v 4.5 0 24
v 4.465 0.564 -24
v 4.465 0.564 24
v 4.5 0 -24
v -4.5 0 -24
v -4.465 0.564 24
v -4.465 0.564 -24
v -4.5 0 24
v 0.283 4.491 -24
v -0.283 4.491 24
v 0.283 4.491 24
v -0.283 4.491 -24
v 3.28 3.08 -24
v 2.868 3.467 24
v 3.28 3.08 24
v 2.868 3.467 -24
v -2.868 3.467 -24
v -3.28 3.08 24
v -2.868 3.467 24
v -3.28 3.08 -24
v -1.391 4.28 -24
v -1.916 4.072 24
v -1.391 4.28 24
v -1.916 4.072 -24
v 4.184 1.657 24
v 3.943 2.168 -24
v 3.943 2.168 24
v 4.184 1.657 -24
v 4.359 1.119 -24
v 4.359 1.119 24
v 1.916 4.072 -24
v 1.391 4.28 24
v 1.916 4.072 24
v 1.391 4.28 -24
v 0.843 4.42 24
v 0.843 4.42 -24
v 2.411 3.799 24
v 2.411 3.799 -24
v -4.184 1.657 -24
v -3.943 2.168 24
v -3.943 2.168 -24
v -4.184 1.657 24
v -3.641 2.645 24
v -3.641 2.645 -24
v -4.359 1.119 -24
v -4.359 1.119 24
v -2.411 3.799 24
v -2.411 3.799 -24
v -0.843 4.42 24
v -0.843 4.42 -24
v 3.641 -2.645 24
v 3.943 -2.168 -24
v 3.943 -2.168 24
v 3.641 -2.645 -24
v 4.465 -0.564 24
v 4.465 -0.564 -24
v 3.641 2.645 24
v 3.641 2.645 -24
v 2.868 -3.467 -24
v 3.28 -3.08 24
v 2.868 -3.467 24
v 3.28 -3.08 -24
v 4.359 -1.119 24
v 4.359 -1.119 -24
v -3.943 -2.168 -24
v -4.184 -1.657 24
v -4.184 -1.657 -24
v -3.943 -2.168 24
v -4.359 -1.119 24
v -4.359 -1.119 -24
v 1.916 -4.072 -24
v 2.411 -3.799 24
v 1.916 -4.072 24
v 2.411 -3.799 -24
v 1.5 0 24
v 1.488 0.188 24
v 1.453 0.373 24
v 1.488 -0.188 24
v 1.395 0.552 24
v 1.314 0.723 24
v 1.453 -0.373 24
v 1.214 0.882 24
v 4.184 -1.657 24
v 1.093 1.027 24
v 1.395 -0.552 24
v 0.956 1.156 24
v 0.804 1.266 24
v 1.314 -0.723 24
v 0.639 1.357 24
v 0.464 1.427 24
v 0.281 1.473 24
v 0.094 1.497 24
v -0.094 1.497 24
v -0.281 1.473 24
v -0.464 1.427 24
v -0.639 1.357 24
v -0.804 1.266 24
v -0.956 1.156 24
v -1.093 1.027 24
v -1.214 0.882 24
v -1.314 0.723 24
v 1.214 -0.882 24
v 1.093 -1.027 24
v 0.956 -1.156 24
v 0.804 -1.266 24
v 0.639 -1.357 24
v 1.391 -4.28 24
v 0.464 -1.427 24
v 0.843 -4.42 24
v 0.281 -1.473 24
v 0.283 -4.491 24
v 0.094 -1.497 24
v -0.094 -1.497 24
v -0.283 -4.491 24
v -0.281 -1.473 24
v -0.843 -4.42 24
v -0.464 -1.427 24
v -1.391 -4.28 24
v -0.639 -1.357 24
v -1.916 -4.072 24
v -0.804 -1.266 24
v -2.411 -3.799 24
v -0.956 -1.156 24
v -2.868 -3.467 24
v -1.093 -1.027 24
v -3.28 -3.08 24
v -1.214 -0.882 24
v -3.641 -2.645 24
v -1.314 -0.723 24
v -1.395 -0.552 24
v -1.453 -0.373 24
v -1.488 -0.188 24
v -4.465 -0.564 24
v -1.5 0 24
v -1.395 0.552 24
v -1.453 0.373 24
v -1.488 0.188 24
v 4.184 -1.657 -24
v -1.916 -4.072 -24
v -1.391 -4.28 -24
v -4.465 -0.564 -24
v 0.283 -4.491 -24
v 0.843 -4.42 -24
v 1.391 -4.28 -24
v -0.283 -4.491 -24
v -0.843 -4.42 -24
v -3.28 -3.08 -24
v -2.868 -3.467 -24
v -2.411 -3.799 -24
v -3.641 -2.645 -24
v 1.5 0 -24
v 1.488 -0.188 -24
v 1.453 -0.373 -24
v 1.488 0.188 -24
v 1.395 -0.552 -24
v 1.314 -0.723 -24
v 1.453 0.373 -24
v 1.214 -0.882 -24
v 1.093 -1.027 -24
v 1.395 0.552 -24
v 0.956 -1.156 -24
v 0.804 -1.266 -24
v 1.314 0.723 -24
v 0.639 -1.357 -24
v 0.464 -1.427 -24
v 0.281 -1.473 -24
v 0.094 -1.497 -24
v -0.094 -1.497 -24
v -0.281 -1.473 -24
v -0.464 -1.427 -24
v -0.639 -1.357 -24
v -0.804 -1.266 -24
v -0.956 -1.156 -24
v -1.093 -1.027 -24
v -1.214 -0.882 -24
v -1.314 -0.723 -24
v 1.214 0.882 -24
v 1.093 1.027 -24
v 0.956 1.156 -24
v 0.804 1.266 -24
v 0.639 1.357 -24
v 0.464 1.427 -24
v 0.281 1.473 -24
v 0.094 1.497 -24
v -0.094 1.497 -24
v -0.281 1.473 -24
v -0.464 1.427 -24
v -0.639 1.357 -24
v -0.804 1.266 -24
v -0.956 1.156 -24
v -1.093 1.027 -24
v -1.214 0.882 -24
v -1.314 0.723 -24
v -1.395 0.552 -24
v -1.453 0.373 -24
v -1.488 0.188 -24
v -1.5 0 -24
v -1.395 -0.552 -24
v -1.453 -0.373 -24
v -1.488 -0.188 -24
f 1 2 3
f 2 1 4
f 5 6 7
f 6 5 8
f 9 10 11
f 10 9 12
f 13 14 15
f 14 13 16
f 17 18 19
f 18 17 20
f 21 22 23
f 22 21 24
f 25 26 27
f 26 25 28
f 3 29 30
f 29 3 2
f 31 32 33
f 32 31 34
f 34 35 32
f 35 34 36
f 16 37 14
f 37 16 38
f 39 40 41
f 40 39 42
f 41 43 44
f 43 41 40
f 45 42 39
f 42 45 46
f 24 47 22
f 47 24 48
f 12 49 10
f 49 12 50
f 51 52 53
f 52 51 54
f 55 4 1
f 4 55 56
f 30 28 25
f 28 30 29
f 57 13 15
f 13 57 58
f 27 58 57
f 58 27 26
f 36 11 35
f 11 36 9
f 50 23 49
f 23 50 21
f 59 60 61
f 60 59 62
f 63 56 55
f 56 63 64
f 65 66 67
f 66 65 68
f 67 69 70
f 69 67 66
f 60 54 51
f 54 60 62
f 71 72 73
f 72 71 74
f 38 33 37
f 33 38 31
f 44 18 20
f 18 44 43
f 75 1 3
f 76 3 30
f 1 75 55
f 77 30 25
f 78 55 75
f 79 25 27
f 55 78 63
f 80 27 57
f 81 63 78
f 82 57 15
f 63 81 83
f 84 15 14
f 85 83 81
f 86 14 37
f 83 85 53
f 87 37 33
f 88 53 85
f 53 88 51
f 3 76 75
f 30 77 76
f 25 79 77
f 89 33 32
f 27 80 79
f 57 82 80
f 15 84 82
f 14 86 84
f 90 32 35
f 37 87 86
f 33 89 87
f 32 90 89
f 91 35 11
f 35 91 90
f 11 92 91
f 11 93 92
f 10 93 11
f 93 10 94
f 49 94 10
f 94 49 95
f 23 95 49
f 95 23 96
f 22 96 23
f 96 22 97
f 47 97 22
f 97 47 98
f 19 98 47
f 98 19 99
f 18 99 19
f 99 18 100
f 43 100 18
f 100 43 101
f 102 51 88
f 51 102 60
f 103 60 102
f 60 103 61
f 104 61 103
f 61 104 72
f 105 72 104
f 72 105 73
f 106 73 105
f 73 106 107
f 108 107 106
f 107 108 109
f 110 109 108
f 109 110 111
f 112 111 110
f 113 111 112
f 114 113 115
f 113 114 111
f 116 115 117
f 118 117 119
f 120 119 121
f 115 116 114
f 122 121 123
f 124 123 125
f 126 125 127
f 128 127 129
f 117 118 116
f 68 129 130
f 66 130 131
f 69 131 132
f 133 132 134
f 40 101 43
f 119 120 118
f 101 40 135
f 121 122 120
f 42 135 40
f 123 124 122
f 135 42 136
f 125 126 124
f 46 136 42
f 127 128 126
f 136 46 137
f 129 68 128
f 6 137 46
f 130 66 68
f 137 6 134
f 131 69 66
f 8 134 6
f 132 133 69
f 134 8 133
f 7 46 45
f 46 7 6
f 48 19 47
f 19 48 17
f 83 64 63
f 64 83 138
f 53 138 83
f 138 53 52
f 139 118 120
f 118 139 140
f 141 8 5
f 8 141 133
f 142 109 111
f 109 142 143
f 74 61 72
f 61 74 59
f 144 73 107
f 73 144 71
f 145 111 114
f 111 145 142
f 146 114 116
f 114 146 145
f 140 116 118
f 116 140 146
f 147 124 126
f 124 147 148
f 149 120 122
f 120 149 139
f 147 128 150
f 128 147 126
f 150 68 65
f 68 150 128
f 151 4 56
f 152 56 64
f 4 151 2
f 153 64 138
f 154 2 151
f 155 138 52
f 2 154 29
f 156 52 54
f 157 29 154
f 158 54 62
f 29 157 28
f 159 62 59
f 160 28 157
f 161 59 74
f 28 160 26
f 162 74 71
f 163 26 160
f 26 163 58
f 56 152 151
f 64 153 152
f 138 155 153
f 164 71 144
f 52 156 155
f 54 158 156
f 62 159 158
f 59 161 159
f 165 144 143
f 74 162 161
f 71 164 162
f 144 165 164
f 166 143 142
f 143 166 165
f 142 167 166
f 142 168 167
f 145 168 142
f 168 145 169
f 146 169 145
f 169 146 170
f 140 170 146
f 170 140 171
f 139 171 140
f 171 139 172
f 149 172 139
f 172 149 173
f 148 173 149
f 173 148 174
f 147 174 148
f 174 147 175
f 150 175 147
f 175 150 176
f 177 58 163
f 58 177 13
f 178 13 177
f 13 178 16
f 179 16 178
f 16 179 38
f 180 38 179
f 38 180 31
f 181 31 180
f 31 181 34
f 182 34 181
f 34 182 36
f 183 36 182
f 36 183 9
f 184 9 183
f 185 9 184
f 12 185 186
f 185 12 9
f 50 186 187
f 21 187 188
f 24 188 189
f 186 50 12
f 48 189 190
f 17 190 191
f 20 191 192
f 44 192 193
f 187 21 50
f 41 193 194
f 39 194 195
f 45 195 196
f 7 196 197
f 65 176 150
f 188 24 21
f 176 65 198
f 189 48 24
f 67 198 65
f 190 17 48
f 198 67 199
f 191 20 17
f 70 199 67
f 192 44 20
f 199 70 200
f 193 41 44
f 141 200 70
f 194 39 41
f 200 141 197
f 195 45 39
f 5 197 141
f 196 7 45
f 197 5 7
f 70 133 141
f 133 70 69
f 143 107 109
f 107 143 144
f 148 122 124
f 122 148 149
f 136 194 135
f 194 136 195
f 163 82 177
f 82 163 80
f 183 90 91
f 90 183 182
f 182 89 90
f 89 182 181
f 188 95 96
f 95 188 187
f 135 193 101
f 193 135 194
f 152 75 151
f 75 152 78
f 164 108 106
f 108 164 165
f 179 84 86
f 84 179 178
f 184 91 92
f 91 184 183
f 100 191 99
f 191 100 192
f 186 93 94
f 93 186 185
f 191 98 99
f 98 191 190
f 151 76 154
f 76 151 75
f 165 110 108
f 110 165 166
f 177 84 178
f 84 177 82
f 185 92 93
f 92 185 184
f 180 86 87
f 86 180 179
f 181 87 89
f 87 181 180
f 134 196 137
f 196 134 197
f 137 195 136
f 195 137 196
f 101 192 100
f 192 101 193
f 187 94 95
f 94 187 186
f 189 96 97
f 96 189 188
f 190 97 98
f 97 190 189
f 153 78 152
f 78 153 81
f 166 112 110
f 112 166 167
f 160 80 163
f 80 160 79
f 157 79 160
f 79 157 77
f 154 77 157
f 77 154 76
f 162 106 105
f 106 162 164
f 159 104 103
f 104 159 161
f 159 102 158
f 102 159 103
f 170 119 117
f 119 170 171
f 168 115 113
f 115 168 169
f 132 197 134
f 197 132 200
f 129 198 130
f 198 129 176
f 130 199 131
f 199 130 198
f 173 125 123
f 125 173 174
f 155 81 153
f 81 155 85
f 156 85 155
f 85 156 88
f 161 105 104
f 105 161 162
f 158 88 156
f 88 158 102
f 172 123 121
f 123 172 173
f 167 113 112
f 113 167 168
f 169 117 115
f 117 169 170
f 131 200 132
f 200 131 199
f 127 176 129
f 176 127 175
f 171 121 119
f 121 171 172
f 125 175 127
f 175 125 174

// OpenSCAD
$fn = 50;


difference() {
	union() {
		translate(v = [0, 0, -24.0000000000]) {
			cylinder(h = 48, r = 4.5000000000);
		}
	}
	union() {
		translate(v = [0, 0, -100.0000000000]) {
			cylinder(h = 200, r = 1.5000000000);
		}
	}
}
